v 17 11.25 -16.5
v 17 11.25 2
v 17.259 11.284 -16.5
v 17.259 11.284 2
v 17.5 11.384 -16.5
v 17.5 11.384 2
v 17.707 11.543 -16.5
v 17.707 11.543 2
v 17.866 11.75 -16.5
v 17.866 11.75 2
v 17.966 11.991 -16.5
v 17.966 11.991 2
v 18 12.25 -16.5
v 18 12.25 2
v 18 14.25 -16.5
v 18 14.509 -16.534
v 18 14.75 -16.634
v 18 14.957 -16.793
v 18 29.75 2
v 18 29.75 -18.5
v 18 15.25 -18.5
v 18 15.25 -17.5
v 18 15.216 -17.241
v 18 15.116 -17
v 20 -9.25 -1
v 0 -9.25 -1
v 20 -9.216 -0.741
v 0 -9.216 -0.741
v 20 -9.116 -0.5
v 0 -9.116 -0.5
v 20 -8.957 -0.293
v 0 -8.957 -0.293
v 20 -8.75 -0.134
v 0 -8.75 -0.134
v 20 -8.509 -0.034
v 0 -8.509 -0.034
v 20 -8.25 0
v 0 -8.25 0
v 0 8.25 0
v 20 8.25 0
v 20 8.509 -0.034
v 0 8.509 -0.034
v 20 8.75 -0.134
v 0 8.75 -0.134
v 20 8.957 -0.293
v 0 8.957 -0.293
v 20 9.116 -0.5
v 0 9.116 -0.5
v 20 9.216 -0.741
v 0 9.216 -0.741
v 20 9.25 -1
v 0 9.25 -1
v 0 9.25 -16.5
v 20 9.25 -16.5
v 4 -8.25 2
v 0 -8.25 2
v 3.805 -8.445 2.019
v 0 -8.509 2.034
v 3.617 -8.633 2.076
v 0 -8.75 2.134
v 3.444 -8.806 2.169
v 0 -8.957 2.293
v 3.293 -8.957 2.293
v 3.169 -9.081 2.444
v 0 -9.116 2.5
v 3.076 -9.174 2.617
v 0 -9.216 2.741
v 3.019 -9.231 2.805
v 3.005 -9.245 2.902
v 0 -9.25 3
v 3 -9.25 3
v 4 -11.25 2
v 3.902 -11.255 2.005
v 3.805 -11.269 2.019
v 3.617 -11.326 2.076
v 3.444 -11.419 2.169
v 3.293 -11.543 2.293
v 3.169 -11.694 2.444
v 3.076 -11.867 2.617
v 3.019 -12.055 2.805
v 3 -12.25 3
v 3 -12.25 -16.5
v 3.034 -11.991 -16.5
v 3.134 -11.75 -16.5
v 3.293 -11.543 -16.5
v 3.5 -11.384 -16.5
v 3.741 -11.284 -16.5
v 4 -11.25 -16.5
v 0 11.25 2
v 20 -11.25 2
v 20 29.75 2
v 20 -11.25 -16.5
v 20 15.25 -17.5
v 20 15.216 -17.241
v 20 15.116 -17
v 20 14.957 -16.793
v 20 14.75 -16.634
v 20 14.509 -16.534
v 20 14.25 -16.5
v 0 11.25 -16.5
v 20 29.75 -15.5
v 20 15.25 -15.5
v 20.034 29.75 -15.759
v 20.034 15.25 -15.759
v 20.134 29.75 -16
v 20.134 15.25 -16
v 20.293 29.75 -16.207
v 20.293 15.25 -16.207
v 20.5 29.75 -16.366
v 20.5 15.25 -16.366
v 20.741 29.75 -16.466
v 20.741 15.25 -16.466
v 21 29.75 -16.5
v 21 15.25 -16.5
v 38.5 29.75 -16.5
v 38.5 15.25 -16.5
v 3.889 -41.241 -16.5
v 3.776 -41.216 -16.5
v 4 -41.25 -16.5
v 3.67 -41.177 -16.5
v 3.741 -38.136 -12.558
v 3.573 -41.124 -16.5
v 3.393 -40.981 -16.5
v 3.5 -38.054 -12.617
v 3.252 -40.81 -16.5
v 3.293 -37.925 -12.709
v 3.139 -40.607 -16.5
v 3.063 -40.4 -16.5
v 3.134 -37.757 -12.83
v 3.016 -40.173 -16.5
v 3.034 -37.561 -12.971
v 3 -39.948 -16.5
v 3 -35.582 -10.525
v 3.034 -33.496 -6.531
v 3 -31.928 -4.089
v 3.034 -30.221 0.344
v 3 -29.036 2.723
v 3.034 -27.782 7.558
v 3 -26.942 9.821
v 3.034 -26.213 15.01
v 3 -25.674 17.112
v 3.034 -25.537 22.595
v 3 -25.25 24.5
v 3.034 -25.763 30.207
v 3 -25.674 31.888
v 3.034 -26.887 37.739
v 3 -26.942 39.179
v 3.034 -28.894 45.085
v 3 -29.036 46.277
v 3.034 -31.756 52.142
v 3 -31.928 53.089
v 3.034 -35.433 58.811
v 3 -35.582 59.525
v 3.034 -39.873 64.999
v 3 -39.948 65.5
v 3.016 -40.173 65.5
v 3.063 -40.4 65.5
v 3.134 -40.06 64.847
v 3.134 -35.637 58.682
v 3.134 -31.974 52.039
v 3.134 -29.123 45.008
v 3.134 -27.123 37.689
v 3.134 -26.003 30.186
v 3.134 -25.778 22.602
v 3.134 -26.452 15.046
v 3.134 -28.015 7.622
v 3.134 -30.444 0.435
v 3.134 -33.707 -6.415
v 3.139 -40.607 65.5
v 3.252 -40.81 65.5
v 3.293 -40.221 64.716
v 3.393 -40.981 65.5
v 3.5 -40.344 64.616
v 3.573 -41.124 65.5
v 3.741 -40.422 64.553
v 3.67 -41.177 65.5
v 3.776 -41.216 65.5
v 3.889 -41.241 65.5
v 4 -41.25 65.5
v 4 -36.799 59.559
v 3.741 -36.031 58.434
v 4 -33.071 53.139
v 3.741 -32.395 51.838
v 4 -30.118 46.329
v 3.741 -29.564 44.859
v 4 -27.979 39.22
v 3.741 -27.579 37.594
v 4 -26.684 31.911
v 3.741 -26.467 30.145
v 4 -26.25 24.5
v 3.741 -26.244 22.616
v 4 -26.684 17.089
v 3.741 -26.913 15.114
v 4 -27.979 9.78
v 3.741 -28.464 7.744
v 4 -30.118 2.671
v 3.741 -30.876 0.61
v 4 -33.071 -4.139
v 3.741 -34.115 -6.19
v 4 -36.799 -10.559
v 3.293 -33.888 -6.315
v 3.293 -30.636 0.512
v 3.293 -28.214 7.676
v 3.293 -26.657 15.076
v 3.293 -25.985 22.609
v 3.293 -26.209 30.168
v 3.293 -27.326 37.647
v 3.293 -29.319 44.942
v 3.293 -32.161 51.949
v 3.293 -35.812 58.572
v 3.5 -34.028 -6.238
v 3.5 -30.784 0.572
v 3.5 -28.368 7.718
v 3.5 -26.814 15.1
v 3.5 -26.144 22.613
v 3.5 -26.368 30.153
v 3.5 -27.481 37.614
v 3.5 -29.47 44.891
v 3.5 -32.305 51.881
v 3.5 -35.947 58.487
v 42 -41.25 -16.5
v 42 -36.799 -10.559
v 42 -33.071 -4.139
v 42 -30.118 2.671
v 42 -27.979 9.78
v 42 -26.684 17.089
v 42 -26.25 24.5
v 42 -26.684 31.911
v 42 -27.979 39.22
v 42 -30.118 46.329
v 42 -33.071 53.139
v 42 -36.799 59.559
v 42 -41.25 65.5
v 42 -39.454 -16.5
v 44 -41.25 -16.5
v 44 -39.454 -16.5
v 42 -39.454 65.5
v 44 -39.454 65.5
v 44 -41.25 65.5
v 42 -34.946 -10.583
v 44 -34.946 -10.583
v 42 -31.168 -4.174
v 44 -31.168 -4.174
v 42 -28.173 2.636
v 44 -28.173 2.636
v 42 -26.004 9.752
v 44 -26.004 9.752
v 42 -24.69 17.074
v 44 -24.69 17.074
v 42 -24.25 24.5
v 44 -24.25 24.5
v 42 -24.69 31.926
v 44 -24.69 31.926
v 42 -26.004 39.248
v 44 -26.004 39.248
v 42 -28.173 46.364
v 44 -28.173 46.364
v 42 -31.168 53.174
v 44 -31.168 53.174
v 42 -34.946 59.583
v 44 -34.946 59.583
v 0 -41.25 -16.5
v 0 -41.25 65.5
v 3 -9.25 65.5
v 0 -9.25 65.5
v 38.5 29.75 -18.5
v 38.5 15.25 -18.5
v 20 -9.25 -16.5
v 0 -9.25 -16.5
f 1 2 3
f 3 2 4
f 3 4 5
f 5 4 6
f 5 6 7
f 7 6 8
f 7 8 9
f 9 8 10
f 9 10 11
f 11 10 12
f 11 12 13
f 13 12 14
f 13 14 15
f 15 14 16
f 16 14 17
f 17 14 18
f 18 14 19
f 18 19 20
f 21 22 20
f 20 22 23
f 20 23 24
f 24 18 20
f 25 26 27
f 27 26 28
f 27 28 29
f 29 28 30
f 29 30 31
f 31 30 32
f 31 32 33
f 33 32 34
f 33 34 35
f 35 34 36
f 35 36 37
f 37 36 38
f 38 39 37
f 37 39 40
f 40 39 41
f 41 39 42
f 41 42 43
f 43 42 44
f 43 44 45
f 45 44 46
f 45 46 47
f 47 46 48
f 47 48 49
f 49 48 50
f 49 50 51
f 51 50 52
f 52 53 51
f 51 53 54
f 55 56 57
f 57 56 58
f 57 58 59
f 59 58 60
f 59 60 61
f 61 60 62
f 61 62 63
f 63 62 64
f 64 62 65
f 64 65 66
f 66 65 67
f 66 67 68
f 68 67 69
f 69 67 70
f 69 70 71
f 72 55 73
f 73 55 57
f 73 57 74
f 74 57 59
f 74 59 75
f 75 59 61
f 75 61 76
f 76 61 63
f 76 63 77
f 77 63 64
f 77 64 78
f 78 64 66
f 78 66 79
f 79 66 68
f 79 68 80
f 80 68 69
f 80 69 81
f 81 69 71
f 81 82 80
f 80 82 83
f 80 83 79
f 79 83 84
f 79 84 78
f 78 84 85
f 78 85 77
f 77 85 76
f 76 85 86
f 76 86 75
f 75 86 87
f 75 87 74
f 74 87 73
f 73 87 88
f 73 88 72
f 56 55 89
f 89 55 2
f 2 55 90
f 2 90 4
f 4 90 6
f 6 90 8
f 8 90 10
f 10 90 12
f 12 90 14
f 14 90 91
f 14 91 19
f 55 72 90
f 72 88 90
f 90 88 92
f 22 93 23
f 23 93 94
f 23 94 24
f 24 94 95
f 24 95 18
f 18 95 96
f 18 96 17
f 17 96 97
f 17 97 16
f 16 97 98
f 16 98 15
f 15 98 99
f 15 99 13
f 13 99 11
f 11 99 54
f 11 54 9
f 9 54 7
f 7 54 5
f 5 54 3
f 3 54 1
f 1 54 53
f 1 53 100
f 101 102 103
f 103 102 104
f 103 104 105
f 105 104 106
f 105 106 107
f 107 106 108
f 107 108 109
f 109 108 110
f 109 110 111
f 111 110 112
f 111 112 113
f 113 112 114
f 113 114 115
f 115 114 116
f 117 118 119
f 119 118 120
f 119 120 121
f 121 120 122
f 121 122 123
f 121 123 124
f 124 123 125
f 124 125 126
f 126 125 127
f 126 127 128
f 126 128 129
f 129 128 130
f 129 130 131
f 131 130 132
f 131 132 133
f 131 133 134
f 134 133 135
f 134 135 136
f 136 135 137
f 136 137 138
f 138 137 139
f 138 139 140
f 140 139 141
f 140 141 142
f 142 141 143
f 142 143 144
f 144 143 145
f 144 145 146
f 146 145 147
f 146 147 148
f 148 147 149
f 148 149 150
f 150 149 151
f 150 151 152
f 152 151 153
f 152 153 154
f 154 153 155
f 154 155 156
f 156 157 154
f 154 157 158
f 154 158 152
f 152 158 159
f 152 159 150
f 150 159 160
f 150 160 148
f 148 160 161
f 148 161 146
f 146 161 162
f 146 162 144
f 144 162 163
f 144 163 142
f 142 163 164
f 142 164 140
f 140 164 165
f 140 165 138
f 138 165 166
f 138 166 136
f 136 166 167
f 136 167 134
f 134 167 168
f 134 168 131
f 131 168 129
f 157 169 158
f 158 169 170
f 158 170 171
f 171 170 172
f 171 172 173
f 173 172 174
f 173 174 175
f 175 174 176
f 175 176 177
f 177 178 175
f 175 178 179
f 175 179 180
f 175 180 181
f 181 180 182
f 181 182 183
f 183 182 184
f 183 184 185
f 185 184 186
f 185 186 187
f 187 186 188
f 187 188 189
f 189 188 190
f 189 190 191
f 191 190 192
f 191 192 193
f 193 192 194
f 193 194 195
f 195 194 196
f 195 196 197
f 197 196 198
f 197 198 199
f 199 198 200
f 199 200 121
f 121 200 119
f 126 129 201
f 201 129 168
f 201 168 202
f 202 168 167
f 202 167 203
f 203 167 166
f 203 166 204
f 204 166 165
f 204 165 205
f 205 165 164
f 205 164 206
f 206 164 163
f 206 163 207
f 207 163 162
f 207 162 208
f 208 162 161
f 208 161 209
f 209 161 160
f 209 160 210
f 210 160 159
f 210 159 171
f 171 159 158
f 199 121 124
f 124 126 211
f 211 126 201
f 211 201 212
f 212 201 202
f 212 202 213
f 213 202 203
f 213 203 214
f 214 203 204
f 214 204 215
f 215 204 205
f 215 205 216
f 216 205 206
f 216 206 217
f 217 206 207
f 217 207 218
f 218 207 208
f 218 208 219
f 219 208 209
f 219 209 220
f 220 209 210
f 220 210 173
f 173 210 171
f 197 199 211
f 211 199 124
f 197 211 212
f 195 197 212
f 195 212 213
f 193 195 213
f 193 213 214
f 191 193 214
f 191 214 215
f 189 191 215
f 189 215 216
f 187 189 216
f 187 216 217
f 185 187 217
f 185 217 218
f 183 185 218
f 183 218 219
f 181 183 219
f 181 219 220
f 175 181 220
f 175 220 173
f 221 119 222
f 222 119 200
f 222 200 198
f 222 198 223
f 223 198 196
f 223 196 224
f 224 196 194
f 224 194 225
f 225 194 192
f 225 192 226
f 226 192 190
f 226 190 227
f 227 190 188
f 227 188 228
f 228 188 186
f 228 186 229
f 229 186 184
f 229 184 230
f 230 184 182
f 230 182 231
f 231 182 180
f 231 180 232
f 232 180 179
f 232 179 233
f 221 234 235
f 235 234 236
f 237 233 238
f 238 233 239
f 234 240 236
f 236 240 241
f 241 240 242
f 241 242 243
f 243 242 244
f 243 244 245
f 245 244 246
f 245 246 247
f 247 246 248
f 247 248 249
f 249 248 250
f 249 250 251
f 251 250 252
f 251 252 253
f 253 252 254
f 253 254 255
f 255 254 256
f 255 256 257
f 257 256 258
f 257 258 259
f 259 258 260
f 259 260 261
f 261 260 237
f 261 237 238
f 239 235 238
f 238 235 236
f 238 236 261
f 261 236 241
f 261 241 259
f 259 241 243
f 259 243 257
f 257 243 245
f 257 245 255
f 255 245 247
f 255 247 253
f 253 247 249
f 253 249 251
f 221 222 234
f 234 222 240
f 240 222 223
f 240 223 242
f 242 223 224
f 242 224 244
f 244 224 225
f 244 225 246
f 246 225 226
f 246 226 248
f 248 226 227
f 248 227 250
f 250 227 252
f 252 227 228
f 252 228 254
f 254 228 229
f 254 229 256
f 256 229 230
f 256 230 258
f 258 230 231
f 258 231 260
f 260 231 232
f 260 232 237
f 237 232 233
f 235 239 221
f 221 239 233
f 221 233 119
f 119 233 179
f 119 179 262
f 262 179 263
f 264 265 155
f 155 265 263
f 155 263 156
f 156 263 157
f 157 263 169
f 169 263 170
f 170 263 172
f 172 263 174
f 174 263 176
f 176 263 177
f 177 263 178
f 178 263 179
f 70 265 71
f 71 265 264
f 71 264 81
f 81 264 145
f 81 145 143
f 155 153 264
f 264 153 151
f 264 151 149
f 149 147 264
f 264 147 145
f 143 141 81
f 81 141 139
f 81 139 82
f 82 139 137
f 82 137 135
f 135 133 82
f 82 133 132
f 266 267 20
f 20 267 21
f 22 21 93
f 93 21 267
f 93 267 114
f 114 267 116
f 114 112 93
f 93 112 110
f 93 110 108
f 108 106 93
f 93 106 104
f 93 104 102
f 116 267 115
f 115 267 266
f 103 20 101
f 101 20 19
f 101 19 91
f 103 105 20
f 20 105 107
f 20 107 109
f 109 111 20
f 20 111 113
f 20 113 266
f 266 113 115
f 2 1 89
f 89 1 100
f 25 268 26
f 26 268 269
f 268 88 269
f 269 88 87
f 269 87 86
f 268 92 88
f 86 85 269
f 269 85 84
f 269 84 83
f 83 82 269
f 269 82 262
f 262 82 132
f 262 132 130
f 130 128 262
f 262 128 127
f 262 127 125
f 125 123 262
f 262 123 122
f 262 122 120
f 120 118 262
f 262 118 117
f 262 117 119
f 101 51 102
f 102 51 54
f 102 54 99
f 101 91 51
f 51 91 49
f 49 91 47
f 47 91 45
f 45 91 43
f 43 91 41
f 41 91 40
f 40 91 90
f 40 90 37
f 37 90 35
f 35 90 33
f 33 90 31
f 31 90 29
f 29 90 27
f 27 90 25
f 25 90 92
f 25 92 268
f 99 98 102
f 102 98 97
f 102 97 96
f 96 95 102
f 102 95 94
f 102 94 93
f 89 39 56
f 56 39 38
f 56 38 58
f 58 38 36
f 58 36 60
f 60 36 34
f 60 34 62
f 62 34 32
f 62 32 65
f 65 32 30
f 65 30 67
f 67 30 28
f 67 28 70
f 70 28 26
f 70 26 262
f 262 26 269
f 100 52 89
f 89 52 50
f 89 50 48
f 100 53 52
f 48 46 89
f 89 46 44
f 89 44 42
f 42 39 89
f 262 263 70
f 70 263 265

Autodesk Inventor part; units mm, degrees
ref_plane "YZ Plane" through (0, 0, 0) normal (1, 0, 0) x (0, 1, 0)
ref_plane "XZ Plane" through (0, 0, 0) normal (0, 1, 0) x (-1, 0, 0)
ref_plane "XY Plane" through (0, 0, 0) normal (0, 0, 1) x (1, 0, 0)
sketch "Sketch1" plane through (0, 0, 0) normal (1, 0, 0) x (0, 1, 0)
  line L0 (9.25, -16.5) -> (11.25, -16.5)
  line L1 (11.25, -16.5) -> (11.25, 2)
  line L2 (11.25, 2) -> (-11.25, 2)
  line L3 (-11.25, 2) -> (-11.25, -16.5)
  line L4 (-11.25, -16.5) -> (-9.25, -16.5)
  line L5 (-9.25, -16.5) -> (-9.25, 0)
  line L6 (-9.25, 0) -> (9.25, 0)
  line L7 (9.25, 0) -> (9.25, -16.5)
  point P0 (0, 0)
  point P1 (0, 0)
  point P2 (10.25, -16.5)
  point P3 (-10.25, -16.5)
  dimension "d0" = 18.5
  dimension "d1" = 2
  dimension "d2" = 2
  dimension "d3" = 18.5
extrude "Extrusion1" add sketch "Sketch1" along normal blind 20
sketch "Sketch2" plane through (20, 0, 0) normal (1, 0, 0) x (0, 0, -1)
  line L0 (16.5, 9.25) -> (16.5, 11.25) projected
  line L1 (16.5, 11.25) -> (-2, 11.25) projected
  line L2 (-2, 11.25) -> (-2, -11.25) projected
  line L3 (-2, -11.25) -> (16.5, -11.25) projected
  line L4 (16.5, -11.25) -> (16.5, -9.25) projected
  line L5 (16.5, -9.25) -> (0, -9.25) projected
  line L6 (0, -9.25) -> (0, 9.25) projected
  line L7 (0, 9.25) -> (16.5, 9.25) projected
  line L8 (16.5, 9.25) -> (16.5, 11.25) projected
  line L9 (16.5, 11.25) -> (-2, 11.25)
  line L10 (-2, 11.25) -> (-2, 29.75)
  line L11 (-2, 29.75) -> (16.5, 29.75)
  line L12 (16.5, 29.75) -> (16.5, 11.25)
  point P0 (0, 0)
  dimension "d6" = 18.5
extrude "Extrusion2" add sketch "Sketch2" against normal blind 2 contours L1 L10 L11 L12
sketch "Sketch3" plane through (20, 0, 0) normal (1, 0, 0) x (0, 0, -1)
  line L0 (16.5, 9.25) -> (16.5, 29.75) projected
  line L1 (16.5, 29.75) -> (-2, 29.75) projected
  line L2 (-2, 29.75) -> (-2, -11.25) projected
  line L3 (-2, -11.25) -> (16.5, -11.25) projected
  line L4 (16.5, -11.25) -> (16.5, -9.25) projected
  line L5 (16.5, -9.25) -> (0, -9.25) projected
  line L6 (0, -9.25) -> (0, 9.25) projected
  line L7 (0, 9.25) -> (16.5, 9.25) projected
  line L8 (16.5, 29.75) -> (16.5, 15.25)
  line L9 (16.5, 9.25) -> (16.5, 29.75) projected
  line L10 (16.5, 15.25) -> (18.5, 15.25)
  line L11 (18.5, 15.25) -> (18.5, 29.75)
  line L12 (18.5, 29.75) -> (16.5, 29.75)
  point P0 (0, 0)
  dimension "d9" = 6
  dimension "d10" = 2
extrude "Extrusion3" add sketch "Sketch3" along normal blind 18.5 and the other way blind 2 contours L0 L12 L11 L10
sketch "Sketch4" plane through (0, 0, 0) normal (-1, 0, 0) x (0, 0, 1)
  line L0 (-16.5, 9.25) -> (-16.5, 11.25) projected
  line L1 (0, 9.25) -> (-16.5, 9.25) projected
  line L2 (0, -9.25) -> (0, 9.25) projected
  line L3 (-16.5, -9.25) -> (0, -9.25) projected
  line L4 (-16.5, -11.25) -> (-16.5, -9.25) projected
  line L5 (2, -11.25) -> (-16.5, -11.25) projected
  line L6 (2, 11.25) -> (2, -11.25) projected
  line L7 (-16.5, 11.25) -> (2, 11.25) projected
  line L8 (-16.5, -9.25) -> (0, -9.25) projected
  line L9 (-16.5, -9.25) -> (65.5, -9.25)
  line L10 (65.5, -9.25) -> (65.5, -41.25)
  line L11 (65.5, -41.25) -> (-16.5, -41.25)
  line L12 (-16.5, -41.25) -> (-16.5, -9.25)
  point P0 (0, 0)
  dimension "d15" = 82
  dimension "d16" = 30
extrude "Extrusion4" add sketch "Sketch4" against normal blind 3 contours L9 L6 L5 L4 L3 | L9 L10 L11 L12 L5 L6
sketch "Sketch5" plane through (3, 0, 0) normal (1, 0, 0) x (0, 0, -1)
  line L0 (-2, -9.25) -> (-2, -11.25) projected
  line L1 (-2, -9.25) -> (-65.5, -9.25) projected
  line L2 (-65.5, -9.25) -> (-65.5, -41.25) projected
  line L3 (-65.5, -41.25) -> (16.5, -41.25) projected
  line L4 (16.5, -41.25) -> (16.5, -11.25) projected
  line L5 (-2, -11.25) -> (16.5, -11.25) projected
  arc A0 (16.5, -41.25) -> (-65.5, -41.25) centre (-24.5, -89.7833) ccw
  point P0 (0, 0)
  dimension "d20" = 15
extrude "Extrusion5" add sketch "Sketch5" along normal blind 39 contours A0 L3
sketch "Sketch7" plane through (42, 0, 0) normal (1, 0, 0) x (0, 0, -1)
  line L0 (-65.5, -41.25) -> (16.5, -41.25) projected
  arc A0 (16.5, -41.25) -> (-65.5, -41.25) centre (-24.5, -89.7833) ccw projected
  line L1 (-67.5, -41.25) -> (18.5, -41.25)
  arc A1 (18.5, -41.25) -> (-67.5, -41.25) centre (-24.5, -87.1324) ccw
  point P0 (0, 0)
  dimension "d33" = 2
  dimension "d34" = 2
  dimension "d35" = 2
extrude "Extrusion6" add sketch "Sketch7" along normal blind 2
sketch "Sketch8" plane through (44, 0, 0) normal (1, 0, 0) x (0, 0, -1)
  arc A0 (16.5, -41.25) -> (-65.5, -41.25) centre (-24.5, -89.7833) ccw projected
  line L0 (16.5, -41.25) -> (16.5, -11.25) projected
  line L1 (-2, -11.25) -> (16.5, -11.25) projected
  line L2 (-2, -9.25) -> (-2, -11.25) projected
  line L3 (-2, -9.25) -> (-65.5, -9.25) projected
  line L4 (-65.5, -9.25) -> (-65.5, -41.25) projected
  line L5 (-67.5, -41.25) -> (18.5, -41.25) projected
  arc A1 (18.5, -41.25) -> (-67.5, -41.25) centre (-24.5, -87.1324) ccw projected
  arc A2 (18.5, -41.25) -> (-67.5, -41.25) centre (-24.5, -87.1324) ccw projected
  line L6 (-67.5, -41.25) -> (-65.5, -41.25)
  line L7 (-65.5, -41.25) -> (-65.5, -39.4544)
  line L8 (-65.5, -39.4544) -> (-67.5, -39.4544)
  line L9 (-67.5, -39.4544) -> (-67.5, -41.25)
  line L10 (16.5, -41.25) -> (18.5, -41.25) projected
  line L11 (16.5, -9.25) -> (16.5, -41.25) projected
  line L12 (18.5, -41.25) -> (16.5, -41.25)
  line L13 (16.5, -41.25) -> (16.5, -39.4544)
  line L14 (16.5, -39.4544) -> (18.5, -39.4544)
  line L15 (18.5, -39.4544) -> (18.5, -41.25)
  point P0 (0, 0)
extrude "Extrusion7" cut sketch "Sketch8" against normal up to surface (2 mm away) contours L0 A1 L5 | L5 A1 L4
fillet "Fillet1" radius 1 9 edges at (3, -26.25, 24.5) (20, 22.5, -16.5) (1.5, -9.25, 2) (3, -10.25, 2) (3, -11.25, -7.25) (10, 9.25, 0) (10, -9.25, 0) (18, 11.25, -7.25) (19, 15.25, -16.5)
equation "\"d2\" = d1"
equation "\"d3\" = d0"
equation "\"d34\" = d33"
properties part number "headphonesDeskHanger"
